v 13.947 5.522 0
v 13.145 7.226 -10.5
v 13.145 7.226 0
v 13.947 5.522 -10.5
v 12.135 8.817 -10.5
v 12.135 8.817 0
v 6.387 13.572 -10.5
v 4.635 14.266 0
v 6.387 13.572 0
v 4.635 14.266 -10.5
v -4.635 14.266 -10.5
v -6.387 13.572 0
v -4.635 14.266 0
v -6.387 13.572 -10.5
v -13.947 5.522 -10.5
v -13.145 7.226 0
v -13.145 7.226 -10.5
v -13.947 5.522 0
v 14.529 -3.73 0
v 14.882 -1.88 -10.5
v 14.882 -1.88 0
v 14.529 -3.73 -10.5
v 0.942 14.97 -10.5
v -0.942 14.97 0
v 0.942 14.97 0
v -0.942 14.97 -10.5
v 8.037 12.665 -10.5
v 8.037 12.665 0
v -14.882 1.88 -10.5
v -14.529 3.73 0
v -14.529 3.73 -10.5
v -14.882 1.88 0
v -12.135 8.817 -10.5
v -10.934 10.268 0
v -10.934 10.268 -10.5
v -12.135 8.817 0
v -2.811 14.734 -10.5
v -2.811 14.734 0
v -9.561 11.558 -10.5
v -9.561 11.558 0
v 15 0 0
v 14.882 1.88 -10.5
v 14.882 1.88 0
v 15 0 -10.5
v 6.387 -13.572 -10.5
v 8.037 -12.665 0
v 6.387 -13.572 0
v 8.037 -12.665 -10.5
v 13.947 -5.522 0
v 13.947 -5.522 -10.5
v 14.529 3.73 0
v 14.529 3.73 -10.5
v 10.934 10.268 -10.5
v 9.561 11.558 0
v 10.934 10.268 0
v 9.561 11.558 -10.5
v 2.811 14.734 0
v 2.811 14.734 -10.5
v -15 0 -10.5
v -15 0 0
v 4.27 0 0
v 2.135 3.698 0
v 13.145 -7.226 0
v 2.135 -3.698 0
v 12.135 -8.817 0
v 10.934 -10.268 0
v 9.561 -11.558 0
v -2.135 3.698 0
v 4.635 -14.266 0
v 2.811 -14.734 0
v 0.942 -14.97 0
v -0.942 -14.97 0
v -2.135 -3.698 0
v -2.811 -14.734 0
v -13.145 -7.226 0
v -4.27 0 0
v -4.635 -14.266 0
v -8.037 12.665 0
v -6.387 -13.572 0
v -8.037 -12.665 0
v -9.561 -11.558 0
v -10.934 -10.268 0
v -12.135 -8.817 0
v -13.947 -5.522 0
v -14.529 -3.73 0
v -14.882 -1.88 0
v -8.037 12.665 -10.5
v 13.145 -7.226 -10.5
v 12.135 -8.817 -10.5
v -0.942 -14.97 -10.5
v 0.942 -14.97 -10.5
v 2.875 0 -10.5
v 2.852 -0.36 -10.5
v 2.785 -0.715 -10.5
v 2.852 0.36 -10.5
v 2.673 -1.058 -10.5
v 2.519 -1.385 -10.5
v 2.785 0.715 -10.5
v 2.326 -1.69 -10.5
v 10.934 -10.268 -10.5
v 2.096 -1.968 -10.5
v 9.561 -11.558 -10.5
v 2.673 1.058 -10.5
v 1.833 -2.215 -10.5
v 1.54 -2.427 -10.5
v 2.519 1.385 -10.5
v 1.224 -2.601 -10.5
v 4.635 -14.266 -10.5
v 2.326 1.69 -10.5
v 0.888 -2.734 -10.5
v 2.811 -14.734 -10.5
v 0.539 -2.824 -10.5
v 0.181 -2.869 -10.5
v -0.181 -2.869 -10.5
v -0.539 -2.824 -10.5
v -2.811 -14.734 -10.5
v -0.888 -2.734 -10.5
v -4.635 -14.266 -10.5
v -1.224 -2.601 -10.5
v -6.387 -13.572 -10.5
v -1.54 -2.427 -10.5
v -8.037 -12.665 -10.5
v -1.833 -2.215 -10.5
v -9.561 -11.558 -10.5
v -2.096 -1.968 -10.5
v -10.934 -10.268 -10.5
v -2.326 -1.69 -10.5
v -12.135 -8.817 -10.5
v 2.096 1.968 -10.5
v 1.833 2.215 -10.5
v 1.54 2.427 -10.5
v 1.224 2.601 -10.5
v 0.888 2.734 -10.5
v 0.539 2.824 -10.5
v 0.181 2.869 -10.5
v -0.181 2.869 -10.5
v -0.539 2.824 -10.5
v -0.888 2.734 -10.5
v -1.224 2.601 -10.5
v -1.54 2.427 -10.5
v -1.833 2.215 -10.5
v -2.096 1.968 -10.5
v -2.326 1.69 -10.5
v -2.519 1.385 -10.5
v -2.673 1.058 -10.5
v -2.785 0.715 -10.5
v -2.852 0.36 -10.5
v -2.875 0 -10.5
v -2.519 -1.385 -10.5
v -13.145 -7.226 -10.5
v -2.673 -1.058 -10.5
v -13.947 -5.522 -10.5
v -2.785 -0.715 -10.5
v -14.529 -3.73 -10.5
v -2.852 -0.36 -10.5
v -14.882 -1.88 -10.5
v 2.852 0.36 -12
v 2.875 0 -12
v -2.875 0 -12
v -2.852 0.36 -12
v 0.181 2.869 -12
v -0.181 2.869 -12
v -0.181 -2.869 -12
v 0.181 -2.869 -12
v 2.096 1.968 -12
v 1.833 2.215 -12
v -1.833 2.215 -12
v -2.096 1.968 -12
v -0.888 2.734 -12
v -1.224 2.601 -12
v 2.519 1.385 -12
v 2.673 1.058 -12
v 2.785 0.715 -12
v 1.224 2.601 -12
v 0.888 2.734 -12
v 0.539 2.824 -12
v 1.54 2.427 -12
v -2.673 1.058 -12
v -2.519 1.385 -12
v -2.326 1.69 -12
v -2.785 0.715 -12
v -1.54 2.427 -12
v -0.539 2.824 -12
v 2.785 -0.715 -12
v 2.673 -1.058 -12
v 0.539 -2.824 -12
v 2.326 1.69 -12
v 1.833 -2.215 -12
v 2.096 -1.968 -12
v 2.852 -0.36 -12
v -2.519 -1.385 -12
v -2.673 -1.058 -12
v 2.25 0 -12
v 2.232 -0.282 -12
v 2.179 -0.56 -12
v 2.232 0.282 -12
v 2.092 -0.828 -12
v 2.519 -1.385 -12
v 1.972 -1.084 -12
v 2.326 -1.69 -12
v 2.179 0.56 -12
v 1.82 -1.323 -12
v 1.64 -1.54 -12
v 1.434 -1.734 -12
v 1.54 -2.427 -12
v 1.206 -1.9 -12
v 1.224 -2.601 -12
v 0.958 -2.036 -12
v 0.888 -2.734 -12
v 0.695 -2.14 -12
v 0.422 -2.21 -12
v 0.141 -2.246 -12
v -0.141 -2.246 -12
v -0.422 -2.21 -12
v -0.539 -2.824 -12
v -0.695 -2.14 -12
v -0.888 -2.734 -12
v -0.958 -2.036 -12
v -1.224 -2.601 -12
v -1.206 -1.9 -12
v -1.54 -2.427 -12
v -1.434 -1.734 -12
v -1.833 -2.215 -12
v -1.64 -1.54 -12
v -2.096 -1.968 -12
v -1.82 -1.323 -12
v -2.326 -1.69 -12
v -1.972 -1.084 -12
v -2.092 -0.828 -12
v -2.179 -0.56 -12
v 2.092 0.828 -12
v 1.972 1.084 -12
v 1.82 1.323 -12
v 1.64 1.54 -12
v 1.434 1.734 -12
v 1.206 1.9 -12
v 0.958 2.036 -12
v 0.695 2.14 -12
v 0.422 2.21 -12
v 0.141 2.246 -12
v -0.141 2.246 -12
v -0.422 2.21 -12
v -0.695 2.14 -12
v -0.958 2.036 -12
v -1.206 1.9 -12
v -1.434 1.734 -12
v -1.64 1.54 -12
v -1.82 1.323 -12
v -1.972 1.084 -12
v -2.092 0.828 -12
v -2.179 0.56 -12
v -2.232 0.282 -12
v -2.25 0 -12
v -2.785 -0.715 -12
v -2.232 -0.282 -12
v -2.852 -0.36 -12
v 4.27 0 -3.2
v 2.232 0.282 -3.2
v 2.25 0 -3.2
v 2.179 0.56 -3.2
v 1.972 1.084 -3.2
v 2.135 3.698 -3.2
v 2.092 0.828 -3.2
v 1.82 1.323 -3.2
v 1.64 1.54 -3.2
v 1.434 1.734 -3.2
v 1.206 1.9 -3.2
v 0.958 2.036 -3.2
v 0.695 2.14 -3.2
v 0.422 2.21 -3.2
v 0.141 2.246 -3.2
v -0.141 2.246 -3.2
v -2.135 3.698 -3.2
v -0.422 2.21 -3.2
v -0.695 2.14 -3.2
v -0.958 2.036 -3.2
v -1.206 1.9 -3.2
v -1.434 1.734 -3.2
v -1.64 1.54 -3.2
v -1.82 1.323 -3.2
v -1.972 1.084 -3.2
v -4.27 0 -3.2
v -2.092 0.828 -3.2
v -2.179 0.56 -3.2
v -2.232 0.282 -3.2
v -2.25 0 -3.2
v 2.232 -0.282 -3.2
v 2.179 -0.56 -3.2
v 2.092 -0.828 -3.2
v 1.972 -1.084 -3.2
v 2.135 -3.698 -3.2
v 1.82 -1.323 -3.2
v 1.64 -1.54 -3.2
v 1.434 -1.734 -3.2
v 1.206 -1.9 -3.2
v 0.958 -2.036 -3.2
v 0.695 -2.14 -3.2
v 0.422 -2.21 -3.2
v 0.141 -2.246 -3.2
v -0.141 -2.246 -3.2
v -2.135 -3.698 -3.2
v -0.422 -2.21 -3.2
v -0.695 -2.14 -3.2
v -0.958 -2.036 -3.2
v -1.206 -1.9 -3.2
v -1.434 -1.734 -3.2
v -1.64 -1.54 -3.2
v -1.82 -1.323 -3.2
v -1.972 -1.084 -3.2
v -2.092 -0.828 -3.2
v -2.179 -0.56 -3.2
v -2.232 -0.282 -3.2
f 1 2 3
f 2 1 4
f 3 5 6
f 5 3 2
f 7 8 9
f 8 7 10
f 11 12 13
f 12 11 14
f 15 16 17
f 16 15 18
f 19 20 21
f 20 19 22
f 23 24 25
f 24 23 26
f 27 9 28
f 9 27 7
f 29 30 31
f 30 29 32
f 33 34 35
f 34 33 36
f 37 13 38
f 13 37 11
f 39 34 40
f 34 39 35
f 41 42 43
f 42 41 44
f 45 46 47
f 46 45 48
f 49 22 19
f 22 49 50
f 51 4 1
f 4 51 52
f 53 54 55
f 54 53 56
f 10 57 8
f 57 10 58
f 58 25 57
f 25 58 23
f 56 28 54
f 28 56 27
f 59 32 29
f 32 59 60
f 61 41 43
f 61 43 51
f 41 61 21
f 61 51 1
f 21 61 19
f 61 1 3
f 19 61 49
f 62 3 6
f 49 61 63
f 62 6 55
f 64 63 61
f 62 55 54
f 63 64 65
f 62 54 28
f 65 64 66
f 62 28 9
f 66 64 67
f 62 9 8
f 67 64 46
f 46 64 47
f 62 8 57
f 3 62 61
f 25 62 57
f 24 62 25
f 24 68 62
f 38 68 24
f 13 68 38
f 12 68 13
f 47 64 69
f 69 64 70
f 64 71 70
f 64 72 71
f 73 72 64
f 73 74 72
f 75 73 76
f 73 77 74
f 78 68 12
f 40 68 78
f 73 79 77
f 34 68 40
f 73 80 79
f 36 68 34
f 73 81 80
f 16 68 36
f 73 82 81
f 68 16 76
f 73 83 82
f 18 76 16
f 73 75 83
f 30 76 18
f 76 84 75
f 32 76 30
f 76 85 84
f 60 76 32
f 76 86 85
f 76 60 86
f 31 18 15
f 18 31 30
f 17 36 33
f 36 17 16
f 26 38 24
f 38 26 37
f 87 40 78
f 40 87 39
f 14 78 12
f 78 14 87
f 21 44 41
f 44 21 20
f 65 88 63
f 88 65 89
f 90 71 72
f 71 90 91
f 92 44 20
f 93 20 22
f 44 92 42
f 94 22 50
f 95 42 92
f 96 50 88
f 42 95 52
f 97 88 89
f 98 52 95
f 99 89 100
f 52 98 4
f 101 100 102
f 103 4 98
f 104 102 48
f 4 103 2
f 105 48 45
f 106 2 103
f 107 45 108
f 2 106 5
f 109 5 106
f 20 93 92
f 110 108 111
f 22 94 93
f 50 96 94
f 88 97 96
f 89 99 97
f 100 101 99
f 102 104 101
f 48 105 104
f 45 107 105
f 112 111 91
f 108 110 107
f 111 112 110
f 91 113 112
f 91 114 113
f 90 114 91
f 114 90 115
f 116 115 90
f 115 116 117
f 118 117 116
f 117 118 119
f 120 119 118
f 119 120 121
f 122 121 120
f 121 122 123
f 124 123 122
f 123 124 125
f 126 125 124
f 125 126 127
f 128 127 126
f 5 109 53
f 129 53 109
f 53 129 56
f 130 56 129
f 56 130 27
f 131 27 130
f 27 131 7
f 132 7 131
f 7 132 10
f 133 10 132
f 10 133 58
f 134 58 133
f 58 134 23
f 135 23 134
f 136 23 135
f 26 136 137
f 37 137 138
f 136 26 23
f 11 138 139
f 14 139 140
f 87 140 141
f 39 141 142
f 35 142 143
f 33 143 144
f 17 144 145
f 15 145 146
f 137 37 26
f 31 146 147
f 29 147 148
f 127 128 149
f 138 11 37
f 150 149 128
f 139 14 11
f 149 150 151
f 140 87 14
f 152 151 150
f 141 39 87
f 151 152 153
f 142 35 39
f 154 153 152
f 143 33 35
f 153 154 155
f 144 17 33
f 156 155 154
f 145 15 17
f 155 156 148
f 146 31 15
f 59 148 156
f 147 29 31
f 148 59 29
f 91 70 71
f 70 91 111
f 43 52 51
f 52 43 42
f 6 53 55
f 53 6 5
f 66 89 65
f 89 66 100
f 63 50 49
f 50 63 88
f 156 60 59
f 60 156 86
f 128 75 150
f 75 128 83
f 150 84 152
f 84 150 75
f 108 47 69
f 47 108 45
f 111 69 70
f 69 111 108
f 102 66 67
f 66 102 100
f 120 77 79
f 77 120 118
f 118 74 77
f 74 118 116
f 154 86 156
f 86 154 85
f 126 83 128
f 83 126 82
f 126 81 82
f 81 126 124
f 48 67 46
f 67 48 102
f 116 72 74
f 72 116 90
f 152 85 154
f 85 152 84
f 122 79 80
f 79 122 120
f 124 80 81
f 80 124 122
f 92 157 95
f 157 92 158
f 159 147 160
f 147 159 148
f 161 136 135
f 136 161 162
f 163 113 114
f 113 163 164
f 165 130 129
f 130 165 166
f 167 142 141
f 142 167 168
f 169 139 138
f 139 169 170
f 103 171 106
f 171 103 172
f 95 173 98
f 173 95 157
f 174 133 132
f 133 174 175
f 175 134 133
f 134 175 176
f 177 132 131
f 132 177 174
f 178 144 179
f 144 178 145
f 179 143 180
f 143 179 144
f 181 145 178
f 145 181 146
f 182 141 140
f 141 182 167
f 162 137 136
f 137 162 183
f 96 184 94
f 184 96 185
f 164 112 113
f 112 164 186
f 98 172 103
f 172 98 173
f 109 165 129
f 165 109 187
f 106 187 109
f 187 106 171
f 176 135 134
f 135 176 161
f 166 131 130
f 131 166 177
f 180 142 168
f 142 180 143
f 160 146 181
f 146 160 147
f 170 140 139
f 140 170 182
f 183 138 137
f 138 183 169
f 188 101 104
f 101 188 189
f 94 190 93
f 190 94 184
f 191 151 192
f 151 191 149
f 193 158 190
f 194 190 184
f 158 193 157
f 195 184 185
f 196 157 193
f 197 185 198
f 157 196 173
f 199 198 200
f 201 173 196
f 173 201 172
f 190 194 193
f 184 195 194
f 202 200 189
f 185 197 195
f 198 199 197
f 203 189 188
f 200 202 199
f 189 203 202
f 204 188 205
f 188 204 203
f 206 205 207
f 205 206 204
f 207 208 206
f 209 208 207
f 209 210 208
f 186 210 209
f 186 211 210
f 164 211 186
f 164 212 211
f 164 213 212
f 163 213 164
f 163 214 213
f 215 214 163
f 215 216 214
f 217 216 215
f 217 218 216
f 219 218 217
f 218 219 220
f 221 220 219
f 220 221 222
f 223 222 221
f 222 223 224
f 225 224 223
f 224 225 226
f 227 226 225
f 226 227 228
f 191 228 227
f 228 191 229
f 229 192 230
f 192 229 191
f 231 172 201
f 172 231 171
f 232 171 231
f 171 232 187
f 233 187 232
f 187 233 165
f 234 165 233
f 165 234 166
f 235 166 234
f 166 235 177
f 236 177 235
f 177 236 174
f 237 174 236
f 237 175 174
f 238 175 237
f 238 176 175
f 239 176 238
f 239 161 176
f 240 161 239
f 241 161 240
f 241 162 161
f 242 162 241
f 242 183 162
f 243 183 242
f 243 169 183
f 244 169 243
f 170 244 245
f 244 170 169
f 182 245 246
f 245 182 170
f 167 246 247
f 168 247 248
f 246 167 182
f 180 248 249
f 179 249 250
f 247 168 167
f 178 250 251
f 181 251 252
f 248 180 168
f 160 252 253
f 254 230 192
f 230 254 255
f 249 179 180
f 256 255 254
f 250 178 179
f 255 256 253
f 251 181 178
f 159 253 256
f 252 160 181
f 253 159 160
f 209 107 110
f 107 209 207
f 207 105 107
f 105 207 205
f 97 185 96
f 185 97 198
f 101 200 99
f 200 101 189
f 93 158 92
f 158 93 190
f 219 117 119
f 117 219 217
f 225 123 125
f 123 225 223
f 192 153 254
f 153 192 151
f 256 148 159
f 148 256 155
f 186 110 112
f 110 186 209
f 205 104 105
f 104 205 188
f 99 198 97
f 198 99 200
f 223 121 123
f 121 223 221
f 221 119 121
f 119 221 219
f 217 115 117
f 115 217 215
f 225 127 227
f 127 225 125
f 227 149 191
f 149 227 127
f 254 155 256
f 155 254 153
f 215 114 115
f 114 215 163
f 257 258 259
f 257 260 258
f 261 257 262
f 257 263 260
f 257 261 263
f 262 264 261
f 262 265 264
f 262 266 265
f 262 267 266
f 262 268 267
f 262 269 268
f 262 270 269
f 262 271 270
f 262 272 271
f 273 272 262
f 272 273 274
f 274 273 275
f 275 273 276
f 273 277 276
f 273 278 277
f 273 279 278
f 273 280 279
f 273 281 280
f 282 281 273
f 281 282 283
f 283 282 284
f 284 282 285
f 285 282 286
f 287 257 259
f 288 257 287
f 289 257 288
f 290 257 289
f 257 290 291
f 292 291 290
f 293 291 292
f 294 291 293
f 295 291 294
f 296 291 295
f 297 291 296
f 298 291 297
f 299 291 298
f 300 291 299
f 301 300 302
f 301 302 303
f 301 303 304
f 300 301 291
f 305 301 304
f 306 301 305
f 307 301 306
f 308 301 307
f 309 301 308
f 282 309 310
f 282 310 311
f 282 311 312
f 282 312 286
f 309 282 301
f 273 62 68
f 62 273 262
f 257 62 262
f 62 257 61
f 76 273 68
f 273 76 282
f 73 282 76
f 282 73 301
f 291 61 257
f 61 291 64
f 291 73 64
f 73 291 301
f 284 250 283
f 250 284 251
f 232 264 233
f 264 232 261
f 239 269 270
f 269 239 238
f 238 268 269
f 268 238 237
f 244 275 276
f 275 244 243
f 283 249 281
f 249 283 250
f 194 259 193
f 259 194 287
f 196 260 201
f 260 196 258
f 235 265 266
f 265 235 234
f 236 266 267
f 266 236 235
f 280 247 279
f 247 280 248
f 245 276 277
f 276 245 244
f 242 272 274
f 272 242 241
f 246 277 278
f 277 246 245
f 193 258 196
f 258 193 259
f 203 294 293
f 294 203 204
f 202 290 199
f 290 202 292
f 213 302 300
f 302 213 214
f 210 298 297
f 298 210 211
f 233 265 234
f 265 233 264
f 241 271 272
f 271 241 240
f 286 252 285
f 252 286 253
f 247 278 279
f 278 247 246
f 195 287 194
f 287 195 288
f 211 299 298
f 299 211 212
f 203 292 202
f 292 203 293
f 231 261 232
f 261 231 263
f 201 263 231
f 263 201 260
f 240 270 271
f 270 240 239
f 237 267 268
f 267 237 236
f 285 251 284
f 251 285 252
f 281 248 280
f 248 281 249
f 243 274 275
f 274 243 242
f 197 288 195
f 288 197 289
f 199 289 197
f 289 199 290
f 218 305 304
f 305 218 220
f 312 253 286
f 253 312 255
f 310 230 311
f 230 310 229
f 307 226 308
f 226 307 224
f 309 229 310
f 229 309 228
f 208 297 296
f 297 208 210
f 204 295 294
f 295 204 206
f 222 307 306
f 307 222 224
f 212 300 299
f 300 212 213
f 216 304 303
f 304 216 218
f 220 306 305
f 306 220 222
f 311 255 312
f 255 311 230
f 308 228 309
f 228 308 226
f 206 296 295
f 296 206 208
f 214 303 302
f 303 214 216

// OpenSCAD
$fn = 50;

difference() {
	union() {
		translate(v = [0, 0, -10.5]) {
			cylinder(h = 10.5, r = 15.0);
		}
		#translate(v = [0, 0, -12.0]) {
			cylinder(h = 12, r = 2.875);
		}
	}
	union() {
		translate(v = [0, 0, 0]) {
			rotate(a = [0, 0, 0]) {
				difference() {
					union() {
						translate(v = [0, 0, -3.2]) {
							linear_extrude(height = 3.2) {
								polygon(points = [[4.2698, 0.0], [2.1349000000000005, 3.697755269078796], [-2.134899999999999, 3.6977552690787965], [-4.2698, 5.228996902999369e-16], [-2.134900000000002, -3.6977552690787956], [2.1348999999999974, -3.697755269078798]]);
							}
						}
					}
					union();
				}
			}
		}
		#translate(v = [0, 0, -100.0]) {
			cylinder(h = 200, r = 2.25);
		}
	}
}
